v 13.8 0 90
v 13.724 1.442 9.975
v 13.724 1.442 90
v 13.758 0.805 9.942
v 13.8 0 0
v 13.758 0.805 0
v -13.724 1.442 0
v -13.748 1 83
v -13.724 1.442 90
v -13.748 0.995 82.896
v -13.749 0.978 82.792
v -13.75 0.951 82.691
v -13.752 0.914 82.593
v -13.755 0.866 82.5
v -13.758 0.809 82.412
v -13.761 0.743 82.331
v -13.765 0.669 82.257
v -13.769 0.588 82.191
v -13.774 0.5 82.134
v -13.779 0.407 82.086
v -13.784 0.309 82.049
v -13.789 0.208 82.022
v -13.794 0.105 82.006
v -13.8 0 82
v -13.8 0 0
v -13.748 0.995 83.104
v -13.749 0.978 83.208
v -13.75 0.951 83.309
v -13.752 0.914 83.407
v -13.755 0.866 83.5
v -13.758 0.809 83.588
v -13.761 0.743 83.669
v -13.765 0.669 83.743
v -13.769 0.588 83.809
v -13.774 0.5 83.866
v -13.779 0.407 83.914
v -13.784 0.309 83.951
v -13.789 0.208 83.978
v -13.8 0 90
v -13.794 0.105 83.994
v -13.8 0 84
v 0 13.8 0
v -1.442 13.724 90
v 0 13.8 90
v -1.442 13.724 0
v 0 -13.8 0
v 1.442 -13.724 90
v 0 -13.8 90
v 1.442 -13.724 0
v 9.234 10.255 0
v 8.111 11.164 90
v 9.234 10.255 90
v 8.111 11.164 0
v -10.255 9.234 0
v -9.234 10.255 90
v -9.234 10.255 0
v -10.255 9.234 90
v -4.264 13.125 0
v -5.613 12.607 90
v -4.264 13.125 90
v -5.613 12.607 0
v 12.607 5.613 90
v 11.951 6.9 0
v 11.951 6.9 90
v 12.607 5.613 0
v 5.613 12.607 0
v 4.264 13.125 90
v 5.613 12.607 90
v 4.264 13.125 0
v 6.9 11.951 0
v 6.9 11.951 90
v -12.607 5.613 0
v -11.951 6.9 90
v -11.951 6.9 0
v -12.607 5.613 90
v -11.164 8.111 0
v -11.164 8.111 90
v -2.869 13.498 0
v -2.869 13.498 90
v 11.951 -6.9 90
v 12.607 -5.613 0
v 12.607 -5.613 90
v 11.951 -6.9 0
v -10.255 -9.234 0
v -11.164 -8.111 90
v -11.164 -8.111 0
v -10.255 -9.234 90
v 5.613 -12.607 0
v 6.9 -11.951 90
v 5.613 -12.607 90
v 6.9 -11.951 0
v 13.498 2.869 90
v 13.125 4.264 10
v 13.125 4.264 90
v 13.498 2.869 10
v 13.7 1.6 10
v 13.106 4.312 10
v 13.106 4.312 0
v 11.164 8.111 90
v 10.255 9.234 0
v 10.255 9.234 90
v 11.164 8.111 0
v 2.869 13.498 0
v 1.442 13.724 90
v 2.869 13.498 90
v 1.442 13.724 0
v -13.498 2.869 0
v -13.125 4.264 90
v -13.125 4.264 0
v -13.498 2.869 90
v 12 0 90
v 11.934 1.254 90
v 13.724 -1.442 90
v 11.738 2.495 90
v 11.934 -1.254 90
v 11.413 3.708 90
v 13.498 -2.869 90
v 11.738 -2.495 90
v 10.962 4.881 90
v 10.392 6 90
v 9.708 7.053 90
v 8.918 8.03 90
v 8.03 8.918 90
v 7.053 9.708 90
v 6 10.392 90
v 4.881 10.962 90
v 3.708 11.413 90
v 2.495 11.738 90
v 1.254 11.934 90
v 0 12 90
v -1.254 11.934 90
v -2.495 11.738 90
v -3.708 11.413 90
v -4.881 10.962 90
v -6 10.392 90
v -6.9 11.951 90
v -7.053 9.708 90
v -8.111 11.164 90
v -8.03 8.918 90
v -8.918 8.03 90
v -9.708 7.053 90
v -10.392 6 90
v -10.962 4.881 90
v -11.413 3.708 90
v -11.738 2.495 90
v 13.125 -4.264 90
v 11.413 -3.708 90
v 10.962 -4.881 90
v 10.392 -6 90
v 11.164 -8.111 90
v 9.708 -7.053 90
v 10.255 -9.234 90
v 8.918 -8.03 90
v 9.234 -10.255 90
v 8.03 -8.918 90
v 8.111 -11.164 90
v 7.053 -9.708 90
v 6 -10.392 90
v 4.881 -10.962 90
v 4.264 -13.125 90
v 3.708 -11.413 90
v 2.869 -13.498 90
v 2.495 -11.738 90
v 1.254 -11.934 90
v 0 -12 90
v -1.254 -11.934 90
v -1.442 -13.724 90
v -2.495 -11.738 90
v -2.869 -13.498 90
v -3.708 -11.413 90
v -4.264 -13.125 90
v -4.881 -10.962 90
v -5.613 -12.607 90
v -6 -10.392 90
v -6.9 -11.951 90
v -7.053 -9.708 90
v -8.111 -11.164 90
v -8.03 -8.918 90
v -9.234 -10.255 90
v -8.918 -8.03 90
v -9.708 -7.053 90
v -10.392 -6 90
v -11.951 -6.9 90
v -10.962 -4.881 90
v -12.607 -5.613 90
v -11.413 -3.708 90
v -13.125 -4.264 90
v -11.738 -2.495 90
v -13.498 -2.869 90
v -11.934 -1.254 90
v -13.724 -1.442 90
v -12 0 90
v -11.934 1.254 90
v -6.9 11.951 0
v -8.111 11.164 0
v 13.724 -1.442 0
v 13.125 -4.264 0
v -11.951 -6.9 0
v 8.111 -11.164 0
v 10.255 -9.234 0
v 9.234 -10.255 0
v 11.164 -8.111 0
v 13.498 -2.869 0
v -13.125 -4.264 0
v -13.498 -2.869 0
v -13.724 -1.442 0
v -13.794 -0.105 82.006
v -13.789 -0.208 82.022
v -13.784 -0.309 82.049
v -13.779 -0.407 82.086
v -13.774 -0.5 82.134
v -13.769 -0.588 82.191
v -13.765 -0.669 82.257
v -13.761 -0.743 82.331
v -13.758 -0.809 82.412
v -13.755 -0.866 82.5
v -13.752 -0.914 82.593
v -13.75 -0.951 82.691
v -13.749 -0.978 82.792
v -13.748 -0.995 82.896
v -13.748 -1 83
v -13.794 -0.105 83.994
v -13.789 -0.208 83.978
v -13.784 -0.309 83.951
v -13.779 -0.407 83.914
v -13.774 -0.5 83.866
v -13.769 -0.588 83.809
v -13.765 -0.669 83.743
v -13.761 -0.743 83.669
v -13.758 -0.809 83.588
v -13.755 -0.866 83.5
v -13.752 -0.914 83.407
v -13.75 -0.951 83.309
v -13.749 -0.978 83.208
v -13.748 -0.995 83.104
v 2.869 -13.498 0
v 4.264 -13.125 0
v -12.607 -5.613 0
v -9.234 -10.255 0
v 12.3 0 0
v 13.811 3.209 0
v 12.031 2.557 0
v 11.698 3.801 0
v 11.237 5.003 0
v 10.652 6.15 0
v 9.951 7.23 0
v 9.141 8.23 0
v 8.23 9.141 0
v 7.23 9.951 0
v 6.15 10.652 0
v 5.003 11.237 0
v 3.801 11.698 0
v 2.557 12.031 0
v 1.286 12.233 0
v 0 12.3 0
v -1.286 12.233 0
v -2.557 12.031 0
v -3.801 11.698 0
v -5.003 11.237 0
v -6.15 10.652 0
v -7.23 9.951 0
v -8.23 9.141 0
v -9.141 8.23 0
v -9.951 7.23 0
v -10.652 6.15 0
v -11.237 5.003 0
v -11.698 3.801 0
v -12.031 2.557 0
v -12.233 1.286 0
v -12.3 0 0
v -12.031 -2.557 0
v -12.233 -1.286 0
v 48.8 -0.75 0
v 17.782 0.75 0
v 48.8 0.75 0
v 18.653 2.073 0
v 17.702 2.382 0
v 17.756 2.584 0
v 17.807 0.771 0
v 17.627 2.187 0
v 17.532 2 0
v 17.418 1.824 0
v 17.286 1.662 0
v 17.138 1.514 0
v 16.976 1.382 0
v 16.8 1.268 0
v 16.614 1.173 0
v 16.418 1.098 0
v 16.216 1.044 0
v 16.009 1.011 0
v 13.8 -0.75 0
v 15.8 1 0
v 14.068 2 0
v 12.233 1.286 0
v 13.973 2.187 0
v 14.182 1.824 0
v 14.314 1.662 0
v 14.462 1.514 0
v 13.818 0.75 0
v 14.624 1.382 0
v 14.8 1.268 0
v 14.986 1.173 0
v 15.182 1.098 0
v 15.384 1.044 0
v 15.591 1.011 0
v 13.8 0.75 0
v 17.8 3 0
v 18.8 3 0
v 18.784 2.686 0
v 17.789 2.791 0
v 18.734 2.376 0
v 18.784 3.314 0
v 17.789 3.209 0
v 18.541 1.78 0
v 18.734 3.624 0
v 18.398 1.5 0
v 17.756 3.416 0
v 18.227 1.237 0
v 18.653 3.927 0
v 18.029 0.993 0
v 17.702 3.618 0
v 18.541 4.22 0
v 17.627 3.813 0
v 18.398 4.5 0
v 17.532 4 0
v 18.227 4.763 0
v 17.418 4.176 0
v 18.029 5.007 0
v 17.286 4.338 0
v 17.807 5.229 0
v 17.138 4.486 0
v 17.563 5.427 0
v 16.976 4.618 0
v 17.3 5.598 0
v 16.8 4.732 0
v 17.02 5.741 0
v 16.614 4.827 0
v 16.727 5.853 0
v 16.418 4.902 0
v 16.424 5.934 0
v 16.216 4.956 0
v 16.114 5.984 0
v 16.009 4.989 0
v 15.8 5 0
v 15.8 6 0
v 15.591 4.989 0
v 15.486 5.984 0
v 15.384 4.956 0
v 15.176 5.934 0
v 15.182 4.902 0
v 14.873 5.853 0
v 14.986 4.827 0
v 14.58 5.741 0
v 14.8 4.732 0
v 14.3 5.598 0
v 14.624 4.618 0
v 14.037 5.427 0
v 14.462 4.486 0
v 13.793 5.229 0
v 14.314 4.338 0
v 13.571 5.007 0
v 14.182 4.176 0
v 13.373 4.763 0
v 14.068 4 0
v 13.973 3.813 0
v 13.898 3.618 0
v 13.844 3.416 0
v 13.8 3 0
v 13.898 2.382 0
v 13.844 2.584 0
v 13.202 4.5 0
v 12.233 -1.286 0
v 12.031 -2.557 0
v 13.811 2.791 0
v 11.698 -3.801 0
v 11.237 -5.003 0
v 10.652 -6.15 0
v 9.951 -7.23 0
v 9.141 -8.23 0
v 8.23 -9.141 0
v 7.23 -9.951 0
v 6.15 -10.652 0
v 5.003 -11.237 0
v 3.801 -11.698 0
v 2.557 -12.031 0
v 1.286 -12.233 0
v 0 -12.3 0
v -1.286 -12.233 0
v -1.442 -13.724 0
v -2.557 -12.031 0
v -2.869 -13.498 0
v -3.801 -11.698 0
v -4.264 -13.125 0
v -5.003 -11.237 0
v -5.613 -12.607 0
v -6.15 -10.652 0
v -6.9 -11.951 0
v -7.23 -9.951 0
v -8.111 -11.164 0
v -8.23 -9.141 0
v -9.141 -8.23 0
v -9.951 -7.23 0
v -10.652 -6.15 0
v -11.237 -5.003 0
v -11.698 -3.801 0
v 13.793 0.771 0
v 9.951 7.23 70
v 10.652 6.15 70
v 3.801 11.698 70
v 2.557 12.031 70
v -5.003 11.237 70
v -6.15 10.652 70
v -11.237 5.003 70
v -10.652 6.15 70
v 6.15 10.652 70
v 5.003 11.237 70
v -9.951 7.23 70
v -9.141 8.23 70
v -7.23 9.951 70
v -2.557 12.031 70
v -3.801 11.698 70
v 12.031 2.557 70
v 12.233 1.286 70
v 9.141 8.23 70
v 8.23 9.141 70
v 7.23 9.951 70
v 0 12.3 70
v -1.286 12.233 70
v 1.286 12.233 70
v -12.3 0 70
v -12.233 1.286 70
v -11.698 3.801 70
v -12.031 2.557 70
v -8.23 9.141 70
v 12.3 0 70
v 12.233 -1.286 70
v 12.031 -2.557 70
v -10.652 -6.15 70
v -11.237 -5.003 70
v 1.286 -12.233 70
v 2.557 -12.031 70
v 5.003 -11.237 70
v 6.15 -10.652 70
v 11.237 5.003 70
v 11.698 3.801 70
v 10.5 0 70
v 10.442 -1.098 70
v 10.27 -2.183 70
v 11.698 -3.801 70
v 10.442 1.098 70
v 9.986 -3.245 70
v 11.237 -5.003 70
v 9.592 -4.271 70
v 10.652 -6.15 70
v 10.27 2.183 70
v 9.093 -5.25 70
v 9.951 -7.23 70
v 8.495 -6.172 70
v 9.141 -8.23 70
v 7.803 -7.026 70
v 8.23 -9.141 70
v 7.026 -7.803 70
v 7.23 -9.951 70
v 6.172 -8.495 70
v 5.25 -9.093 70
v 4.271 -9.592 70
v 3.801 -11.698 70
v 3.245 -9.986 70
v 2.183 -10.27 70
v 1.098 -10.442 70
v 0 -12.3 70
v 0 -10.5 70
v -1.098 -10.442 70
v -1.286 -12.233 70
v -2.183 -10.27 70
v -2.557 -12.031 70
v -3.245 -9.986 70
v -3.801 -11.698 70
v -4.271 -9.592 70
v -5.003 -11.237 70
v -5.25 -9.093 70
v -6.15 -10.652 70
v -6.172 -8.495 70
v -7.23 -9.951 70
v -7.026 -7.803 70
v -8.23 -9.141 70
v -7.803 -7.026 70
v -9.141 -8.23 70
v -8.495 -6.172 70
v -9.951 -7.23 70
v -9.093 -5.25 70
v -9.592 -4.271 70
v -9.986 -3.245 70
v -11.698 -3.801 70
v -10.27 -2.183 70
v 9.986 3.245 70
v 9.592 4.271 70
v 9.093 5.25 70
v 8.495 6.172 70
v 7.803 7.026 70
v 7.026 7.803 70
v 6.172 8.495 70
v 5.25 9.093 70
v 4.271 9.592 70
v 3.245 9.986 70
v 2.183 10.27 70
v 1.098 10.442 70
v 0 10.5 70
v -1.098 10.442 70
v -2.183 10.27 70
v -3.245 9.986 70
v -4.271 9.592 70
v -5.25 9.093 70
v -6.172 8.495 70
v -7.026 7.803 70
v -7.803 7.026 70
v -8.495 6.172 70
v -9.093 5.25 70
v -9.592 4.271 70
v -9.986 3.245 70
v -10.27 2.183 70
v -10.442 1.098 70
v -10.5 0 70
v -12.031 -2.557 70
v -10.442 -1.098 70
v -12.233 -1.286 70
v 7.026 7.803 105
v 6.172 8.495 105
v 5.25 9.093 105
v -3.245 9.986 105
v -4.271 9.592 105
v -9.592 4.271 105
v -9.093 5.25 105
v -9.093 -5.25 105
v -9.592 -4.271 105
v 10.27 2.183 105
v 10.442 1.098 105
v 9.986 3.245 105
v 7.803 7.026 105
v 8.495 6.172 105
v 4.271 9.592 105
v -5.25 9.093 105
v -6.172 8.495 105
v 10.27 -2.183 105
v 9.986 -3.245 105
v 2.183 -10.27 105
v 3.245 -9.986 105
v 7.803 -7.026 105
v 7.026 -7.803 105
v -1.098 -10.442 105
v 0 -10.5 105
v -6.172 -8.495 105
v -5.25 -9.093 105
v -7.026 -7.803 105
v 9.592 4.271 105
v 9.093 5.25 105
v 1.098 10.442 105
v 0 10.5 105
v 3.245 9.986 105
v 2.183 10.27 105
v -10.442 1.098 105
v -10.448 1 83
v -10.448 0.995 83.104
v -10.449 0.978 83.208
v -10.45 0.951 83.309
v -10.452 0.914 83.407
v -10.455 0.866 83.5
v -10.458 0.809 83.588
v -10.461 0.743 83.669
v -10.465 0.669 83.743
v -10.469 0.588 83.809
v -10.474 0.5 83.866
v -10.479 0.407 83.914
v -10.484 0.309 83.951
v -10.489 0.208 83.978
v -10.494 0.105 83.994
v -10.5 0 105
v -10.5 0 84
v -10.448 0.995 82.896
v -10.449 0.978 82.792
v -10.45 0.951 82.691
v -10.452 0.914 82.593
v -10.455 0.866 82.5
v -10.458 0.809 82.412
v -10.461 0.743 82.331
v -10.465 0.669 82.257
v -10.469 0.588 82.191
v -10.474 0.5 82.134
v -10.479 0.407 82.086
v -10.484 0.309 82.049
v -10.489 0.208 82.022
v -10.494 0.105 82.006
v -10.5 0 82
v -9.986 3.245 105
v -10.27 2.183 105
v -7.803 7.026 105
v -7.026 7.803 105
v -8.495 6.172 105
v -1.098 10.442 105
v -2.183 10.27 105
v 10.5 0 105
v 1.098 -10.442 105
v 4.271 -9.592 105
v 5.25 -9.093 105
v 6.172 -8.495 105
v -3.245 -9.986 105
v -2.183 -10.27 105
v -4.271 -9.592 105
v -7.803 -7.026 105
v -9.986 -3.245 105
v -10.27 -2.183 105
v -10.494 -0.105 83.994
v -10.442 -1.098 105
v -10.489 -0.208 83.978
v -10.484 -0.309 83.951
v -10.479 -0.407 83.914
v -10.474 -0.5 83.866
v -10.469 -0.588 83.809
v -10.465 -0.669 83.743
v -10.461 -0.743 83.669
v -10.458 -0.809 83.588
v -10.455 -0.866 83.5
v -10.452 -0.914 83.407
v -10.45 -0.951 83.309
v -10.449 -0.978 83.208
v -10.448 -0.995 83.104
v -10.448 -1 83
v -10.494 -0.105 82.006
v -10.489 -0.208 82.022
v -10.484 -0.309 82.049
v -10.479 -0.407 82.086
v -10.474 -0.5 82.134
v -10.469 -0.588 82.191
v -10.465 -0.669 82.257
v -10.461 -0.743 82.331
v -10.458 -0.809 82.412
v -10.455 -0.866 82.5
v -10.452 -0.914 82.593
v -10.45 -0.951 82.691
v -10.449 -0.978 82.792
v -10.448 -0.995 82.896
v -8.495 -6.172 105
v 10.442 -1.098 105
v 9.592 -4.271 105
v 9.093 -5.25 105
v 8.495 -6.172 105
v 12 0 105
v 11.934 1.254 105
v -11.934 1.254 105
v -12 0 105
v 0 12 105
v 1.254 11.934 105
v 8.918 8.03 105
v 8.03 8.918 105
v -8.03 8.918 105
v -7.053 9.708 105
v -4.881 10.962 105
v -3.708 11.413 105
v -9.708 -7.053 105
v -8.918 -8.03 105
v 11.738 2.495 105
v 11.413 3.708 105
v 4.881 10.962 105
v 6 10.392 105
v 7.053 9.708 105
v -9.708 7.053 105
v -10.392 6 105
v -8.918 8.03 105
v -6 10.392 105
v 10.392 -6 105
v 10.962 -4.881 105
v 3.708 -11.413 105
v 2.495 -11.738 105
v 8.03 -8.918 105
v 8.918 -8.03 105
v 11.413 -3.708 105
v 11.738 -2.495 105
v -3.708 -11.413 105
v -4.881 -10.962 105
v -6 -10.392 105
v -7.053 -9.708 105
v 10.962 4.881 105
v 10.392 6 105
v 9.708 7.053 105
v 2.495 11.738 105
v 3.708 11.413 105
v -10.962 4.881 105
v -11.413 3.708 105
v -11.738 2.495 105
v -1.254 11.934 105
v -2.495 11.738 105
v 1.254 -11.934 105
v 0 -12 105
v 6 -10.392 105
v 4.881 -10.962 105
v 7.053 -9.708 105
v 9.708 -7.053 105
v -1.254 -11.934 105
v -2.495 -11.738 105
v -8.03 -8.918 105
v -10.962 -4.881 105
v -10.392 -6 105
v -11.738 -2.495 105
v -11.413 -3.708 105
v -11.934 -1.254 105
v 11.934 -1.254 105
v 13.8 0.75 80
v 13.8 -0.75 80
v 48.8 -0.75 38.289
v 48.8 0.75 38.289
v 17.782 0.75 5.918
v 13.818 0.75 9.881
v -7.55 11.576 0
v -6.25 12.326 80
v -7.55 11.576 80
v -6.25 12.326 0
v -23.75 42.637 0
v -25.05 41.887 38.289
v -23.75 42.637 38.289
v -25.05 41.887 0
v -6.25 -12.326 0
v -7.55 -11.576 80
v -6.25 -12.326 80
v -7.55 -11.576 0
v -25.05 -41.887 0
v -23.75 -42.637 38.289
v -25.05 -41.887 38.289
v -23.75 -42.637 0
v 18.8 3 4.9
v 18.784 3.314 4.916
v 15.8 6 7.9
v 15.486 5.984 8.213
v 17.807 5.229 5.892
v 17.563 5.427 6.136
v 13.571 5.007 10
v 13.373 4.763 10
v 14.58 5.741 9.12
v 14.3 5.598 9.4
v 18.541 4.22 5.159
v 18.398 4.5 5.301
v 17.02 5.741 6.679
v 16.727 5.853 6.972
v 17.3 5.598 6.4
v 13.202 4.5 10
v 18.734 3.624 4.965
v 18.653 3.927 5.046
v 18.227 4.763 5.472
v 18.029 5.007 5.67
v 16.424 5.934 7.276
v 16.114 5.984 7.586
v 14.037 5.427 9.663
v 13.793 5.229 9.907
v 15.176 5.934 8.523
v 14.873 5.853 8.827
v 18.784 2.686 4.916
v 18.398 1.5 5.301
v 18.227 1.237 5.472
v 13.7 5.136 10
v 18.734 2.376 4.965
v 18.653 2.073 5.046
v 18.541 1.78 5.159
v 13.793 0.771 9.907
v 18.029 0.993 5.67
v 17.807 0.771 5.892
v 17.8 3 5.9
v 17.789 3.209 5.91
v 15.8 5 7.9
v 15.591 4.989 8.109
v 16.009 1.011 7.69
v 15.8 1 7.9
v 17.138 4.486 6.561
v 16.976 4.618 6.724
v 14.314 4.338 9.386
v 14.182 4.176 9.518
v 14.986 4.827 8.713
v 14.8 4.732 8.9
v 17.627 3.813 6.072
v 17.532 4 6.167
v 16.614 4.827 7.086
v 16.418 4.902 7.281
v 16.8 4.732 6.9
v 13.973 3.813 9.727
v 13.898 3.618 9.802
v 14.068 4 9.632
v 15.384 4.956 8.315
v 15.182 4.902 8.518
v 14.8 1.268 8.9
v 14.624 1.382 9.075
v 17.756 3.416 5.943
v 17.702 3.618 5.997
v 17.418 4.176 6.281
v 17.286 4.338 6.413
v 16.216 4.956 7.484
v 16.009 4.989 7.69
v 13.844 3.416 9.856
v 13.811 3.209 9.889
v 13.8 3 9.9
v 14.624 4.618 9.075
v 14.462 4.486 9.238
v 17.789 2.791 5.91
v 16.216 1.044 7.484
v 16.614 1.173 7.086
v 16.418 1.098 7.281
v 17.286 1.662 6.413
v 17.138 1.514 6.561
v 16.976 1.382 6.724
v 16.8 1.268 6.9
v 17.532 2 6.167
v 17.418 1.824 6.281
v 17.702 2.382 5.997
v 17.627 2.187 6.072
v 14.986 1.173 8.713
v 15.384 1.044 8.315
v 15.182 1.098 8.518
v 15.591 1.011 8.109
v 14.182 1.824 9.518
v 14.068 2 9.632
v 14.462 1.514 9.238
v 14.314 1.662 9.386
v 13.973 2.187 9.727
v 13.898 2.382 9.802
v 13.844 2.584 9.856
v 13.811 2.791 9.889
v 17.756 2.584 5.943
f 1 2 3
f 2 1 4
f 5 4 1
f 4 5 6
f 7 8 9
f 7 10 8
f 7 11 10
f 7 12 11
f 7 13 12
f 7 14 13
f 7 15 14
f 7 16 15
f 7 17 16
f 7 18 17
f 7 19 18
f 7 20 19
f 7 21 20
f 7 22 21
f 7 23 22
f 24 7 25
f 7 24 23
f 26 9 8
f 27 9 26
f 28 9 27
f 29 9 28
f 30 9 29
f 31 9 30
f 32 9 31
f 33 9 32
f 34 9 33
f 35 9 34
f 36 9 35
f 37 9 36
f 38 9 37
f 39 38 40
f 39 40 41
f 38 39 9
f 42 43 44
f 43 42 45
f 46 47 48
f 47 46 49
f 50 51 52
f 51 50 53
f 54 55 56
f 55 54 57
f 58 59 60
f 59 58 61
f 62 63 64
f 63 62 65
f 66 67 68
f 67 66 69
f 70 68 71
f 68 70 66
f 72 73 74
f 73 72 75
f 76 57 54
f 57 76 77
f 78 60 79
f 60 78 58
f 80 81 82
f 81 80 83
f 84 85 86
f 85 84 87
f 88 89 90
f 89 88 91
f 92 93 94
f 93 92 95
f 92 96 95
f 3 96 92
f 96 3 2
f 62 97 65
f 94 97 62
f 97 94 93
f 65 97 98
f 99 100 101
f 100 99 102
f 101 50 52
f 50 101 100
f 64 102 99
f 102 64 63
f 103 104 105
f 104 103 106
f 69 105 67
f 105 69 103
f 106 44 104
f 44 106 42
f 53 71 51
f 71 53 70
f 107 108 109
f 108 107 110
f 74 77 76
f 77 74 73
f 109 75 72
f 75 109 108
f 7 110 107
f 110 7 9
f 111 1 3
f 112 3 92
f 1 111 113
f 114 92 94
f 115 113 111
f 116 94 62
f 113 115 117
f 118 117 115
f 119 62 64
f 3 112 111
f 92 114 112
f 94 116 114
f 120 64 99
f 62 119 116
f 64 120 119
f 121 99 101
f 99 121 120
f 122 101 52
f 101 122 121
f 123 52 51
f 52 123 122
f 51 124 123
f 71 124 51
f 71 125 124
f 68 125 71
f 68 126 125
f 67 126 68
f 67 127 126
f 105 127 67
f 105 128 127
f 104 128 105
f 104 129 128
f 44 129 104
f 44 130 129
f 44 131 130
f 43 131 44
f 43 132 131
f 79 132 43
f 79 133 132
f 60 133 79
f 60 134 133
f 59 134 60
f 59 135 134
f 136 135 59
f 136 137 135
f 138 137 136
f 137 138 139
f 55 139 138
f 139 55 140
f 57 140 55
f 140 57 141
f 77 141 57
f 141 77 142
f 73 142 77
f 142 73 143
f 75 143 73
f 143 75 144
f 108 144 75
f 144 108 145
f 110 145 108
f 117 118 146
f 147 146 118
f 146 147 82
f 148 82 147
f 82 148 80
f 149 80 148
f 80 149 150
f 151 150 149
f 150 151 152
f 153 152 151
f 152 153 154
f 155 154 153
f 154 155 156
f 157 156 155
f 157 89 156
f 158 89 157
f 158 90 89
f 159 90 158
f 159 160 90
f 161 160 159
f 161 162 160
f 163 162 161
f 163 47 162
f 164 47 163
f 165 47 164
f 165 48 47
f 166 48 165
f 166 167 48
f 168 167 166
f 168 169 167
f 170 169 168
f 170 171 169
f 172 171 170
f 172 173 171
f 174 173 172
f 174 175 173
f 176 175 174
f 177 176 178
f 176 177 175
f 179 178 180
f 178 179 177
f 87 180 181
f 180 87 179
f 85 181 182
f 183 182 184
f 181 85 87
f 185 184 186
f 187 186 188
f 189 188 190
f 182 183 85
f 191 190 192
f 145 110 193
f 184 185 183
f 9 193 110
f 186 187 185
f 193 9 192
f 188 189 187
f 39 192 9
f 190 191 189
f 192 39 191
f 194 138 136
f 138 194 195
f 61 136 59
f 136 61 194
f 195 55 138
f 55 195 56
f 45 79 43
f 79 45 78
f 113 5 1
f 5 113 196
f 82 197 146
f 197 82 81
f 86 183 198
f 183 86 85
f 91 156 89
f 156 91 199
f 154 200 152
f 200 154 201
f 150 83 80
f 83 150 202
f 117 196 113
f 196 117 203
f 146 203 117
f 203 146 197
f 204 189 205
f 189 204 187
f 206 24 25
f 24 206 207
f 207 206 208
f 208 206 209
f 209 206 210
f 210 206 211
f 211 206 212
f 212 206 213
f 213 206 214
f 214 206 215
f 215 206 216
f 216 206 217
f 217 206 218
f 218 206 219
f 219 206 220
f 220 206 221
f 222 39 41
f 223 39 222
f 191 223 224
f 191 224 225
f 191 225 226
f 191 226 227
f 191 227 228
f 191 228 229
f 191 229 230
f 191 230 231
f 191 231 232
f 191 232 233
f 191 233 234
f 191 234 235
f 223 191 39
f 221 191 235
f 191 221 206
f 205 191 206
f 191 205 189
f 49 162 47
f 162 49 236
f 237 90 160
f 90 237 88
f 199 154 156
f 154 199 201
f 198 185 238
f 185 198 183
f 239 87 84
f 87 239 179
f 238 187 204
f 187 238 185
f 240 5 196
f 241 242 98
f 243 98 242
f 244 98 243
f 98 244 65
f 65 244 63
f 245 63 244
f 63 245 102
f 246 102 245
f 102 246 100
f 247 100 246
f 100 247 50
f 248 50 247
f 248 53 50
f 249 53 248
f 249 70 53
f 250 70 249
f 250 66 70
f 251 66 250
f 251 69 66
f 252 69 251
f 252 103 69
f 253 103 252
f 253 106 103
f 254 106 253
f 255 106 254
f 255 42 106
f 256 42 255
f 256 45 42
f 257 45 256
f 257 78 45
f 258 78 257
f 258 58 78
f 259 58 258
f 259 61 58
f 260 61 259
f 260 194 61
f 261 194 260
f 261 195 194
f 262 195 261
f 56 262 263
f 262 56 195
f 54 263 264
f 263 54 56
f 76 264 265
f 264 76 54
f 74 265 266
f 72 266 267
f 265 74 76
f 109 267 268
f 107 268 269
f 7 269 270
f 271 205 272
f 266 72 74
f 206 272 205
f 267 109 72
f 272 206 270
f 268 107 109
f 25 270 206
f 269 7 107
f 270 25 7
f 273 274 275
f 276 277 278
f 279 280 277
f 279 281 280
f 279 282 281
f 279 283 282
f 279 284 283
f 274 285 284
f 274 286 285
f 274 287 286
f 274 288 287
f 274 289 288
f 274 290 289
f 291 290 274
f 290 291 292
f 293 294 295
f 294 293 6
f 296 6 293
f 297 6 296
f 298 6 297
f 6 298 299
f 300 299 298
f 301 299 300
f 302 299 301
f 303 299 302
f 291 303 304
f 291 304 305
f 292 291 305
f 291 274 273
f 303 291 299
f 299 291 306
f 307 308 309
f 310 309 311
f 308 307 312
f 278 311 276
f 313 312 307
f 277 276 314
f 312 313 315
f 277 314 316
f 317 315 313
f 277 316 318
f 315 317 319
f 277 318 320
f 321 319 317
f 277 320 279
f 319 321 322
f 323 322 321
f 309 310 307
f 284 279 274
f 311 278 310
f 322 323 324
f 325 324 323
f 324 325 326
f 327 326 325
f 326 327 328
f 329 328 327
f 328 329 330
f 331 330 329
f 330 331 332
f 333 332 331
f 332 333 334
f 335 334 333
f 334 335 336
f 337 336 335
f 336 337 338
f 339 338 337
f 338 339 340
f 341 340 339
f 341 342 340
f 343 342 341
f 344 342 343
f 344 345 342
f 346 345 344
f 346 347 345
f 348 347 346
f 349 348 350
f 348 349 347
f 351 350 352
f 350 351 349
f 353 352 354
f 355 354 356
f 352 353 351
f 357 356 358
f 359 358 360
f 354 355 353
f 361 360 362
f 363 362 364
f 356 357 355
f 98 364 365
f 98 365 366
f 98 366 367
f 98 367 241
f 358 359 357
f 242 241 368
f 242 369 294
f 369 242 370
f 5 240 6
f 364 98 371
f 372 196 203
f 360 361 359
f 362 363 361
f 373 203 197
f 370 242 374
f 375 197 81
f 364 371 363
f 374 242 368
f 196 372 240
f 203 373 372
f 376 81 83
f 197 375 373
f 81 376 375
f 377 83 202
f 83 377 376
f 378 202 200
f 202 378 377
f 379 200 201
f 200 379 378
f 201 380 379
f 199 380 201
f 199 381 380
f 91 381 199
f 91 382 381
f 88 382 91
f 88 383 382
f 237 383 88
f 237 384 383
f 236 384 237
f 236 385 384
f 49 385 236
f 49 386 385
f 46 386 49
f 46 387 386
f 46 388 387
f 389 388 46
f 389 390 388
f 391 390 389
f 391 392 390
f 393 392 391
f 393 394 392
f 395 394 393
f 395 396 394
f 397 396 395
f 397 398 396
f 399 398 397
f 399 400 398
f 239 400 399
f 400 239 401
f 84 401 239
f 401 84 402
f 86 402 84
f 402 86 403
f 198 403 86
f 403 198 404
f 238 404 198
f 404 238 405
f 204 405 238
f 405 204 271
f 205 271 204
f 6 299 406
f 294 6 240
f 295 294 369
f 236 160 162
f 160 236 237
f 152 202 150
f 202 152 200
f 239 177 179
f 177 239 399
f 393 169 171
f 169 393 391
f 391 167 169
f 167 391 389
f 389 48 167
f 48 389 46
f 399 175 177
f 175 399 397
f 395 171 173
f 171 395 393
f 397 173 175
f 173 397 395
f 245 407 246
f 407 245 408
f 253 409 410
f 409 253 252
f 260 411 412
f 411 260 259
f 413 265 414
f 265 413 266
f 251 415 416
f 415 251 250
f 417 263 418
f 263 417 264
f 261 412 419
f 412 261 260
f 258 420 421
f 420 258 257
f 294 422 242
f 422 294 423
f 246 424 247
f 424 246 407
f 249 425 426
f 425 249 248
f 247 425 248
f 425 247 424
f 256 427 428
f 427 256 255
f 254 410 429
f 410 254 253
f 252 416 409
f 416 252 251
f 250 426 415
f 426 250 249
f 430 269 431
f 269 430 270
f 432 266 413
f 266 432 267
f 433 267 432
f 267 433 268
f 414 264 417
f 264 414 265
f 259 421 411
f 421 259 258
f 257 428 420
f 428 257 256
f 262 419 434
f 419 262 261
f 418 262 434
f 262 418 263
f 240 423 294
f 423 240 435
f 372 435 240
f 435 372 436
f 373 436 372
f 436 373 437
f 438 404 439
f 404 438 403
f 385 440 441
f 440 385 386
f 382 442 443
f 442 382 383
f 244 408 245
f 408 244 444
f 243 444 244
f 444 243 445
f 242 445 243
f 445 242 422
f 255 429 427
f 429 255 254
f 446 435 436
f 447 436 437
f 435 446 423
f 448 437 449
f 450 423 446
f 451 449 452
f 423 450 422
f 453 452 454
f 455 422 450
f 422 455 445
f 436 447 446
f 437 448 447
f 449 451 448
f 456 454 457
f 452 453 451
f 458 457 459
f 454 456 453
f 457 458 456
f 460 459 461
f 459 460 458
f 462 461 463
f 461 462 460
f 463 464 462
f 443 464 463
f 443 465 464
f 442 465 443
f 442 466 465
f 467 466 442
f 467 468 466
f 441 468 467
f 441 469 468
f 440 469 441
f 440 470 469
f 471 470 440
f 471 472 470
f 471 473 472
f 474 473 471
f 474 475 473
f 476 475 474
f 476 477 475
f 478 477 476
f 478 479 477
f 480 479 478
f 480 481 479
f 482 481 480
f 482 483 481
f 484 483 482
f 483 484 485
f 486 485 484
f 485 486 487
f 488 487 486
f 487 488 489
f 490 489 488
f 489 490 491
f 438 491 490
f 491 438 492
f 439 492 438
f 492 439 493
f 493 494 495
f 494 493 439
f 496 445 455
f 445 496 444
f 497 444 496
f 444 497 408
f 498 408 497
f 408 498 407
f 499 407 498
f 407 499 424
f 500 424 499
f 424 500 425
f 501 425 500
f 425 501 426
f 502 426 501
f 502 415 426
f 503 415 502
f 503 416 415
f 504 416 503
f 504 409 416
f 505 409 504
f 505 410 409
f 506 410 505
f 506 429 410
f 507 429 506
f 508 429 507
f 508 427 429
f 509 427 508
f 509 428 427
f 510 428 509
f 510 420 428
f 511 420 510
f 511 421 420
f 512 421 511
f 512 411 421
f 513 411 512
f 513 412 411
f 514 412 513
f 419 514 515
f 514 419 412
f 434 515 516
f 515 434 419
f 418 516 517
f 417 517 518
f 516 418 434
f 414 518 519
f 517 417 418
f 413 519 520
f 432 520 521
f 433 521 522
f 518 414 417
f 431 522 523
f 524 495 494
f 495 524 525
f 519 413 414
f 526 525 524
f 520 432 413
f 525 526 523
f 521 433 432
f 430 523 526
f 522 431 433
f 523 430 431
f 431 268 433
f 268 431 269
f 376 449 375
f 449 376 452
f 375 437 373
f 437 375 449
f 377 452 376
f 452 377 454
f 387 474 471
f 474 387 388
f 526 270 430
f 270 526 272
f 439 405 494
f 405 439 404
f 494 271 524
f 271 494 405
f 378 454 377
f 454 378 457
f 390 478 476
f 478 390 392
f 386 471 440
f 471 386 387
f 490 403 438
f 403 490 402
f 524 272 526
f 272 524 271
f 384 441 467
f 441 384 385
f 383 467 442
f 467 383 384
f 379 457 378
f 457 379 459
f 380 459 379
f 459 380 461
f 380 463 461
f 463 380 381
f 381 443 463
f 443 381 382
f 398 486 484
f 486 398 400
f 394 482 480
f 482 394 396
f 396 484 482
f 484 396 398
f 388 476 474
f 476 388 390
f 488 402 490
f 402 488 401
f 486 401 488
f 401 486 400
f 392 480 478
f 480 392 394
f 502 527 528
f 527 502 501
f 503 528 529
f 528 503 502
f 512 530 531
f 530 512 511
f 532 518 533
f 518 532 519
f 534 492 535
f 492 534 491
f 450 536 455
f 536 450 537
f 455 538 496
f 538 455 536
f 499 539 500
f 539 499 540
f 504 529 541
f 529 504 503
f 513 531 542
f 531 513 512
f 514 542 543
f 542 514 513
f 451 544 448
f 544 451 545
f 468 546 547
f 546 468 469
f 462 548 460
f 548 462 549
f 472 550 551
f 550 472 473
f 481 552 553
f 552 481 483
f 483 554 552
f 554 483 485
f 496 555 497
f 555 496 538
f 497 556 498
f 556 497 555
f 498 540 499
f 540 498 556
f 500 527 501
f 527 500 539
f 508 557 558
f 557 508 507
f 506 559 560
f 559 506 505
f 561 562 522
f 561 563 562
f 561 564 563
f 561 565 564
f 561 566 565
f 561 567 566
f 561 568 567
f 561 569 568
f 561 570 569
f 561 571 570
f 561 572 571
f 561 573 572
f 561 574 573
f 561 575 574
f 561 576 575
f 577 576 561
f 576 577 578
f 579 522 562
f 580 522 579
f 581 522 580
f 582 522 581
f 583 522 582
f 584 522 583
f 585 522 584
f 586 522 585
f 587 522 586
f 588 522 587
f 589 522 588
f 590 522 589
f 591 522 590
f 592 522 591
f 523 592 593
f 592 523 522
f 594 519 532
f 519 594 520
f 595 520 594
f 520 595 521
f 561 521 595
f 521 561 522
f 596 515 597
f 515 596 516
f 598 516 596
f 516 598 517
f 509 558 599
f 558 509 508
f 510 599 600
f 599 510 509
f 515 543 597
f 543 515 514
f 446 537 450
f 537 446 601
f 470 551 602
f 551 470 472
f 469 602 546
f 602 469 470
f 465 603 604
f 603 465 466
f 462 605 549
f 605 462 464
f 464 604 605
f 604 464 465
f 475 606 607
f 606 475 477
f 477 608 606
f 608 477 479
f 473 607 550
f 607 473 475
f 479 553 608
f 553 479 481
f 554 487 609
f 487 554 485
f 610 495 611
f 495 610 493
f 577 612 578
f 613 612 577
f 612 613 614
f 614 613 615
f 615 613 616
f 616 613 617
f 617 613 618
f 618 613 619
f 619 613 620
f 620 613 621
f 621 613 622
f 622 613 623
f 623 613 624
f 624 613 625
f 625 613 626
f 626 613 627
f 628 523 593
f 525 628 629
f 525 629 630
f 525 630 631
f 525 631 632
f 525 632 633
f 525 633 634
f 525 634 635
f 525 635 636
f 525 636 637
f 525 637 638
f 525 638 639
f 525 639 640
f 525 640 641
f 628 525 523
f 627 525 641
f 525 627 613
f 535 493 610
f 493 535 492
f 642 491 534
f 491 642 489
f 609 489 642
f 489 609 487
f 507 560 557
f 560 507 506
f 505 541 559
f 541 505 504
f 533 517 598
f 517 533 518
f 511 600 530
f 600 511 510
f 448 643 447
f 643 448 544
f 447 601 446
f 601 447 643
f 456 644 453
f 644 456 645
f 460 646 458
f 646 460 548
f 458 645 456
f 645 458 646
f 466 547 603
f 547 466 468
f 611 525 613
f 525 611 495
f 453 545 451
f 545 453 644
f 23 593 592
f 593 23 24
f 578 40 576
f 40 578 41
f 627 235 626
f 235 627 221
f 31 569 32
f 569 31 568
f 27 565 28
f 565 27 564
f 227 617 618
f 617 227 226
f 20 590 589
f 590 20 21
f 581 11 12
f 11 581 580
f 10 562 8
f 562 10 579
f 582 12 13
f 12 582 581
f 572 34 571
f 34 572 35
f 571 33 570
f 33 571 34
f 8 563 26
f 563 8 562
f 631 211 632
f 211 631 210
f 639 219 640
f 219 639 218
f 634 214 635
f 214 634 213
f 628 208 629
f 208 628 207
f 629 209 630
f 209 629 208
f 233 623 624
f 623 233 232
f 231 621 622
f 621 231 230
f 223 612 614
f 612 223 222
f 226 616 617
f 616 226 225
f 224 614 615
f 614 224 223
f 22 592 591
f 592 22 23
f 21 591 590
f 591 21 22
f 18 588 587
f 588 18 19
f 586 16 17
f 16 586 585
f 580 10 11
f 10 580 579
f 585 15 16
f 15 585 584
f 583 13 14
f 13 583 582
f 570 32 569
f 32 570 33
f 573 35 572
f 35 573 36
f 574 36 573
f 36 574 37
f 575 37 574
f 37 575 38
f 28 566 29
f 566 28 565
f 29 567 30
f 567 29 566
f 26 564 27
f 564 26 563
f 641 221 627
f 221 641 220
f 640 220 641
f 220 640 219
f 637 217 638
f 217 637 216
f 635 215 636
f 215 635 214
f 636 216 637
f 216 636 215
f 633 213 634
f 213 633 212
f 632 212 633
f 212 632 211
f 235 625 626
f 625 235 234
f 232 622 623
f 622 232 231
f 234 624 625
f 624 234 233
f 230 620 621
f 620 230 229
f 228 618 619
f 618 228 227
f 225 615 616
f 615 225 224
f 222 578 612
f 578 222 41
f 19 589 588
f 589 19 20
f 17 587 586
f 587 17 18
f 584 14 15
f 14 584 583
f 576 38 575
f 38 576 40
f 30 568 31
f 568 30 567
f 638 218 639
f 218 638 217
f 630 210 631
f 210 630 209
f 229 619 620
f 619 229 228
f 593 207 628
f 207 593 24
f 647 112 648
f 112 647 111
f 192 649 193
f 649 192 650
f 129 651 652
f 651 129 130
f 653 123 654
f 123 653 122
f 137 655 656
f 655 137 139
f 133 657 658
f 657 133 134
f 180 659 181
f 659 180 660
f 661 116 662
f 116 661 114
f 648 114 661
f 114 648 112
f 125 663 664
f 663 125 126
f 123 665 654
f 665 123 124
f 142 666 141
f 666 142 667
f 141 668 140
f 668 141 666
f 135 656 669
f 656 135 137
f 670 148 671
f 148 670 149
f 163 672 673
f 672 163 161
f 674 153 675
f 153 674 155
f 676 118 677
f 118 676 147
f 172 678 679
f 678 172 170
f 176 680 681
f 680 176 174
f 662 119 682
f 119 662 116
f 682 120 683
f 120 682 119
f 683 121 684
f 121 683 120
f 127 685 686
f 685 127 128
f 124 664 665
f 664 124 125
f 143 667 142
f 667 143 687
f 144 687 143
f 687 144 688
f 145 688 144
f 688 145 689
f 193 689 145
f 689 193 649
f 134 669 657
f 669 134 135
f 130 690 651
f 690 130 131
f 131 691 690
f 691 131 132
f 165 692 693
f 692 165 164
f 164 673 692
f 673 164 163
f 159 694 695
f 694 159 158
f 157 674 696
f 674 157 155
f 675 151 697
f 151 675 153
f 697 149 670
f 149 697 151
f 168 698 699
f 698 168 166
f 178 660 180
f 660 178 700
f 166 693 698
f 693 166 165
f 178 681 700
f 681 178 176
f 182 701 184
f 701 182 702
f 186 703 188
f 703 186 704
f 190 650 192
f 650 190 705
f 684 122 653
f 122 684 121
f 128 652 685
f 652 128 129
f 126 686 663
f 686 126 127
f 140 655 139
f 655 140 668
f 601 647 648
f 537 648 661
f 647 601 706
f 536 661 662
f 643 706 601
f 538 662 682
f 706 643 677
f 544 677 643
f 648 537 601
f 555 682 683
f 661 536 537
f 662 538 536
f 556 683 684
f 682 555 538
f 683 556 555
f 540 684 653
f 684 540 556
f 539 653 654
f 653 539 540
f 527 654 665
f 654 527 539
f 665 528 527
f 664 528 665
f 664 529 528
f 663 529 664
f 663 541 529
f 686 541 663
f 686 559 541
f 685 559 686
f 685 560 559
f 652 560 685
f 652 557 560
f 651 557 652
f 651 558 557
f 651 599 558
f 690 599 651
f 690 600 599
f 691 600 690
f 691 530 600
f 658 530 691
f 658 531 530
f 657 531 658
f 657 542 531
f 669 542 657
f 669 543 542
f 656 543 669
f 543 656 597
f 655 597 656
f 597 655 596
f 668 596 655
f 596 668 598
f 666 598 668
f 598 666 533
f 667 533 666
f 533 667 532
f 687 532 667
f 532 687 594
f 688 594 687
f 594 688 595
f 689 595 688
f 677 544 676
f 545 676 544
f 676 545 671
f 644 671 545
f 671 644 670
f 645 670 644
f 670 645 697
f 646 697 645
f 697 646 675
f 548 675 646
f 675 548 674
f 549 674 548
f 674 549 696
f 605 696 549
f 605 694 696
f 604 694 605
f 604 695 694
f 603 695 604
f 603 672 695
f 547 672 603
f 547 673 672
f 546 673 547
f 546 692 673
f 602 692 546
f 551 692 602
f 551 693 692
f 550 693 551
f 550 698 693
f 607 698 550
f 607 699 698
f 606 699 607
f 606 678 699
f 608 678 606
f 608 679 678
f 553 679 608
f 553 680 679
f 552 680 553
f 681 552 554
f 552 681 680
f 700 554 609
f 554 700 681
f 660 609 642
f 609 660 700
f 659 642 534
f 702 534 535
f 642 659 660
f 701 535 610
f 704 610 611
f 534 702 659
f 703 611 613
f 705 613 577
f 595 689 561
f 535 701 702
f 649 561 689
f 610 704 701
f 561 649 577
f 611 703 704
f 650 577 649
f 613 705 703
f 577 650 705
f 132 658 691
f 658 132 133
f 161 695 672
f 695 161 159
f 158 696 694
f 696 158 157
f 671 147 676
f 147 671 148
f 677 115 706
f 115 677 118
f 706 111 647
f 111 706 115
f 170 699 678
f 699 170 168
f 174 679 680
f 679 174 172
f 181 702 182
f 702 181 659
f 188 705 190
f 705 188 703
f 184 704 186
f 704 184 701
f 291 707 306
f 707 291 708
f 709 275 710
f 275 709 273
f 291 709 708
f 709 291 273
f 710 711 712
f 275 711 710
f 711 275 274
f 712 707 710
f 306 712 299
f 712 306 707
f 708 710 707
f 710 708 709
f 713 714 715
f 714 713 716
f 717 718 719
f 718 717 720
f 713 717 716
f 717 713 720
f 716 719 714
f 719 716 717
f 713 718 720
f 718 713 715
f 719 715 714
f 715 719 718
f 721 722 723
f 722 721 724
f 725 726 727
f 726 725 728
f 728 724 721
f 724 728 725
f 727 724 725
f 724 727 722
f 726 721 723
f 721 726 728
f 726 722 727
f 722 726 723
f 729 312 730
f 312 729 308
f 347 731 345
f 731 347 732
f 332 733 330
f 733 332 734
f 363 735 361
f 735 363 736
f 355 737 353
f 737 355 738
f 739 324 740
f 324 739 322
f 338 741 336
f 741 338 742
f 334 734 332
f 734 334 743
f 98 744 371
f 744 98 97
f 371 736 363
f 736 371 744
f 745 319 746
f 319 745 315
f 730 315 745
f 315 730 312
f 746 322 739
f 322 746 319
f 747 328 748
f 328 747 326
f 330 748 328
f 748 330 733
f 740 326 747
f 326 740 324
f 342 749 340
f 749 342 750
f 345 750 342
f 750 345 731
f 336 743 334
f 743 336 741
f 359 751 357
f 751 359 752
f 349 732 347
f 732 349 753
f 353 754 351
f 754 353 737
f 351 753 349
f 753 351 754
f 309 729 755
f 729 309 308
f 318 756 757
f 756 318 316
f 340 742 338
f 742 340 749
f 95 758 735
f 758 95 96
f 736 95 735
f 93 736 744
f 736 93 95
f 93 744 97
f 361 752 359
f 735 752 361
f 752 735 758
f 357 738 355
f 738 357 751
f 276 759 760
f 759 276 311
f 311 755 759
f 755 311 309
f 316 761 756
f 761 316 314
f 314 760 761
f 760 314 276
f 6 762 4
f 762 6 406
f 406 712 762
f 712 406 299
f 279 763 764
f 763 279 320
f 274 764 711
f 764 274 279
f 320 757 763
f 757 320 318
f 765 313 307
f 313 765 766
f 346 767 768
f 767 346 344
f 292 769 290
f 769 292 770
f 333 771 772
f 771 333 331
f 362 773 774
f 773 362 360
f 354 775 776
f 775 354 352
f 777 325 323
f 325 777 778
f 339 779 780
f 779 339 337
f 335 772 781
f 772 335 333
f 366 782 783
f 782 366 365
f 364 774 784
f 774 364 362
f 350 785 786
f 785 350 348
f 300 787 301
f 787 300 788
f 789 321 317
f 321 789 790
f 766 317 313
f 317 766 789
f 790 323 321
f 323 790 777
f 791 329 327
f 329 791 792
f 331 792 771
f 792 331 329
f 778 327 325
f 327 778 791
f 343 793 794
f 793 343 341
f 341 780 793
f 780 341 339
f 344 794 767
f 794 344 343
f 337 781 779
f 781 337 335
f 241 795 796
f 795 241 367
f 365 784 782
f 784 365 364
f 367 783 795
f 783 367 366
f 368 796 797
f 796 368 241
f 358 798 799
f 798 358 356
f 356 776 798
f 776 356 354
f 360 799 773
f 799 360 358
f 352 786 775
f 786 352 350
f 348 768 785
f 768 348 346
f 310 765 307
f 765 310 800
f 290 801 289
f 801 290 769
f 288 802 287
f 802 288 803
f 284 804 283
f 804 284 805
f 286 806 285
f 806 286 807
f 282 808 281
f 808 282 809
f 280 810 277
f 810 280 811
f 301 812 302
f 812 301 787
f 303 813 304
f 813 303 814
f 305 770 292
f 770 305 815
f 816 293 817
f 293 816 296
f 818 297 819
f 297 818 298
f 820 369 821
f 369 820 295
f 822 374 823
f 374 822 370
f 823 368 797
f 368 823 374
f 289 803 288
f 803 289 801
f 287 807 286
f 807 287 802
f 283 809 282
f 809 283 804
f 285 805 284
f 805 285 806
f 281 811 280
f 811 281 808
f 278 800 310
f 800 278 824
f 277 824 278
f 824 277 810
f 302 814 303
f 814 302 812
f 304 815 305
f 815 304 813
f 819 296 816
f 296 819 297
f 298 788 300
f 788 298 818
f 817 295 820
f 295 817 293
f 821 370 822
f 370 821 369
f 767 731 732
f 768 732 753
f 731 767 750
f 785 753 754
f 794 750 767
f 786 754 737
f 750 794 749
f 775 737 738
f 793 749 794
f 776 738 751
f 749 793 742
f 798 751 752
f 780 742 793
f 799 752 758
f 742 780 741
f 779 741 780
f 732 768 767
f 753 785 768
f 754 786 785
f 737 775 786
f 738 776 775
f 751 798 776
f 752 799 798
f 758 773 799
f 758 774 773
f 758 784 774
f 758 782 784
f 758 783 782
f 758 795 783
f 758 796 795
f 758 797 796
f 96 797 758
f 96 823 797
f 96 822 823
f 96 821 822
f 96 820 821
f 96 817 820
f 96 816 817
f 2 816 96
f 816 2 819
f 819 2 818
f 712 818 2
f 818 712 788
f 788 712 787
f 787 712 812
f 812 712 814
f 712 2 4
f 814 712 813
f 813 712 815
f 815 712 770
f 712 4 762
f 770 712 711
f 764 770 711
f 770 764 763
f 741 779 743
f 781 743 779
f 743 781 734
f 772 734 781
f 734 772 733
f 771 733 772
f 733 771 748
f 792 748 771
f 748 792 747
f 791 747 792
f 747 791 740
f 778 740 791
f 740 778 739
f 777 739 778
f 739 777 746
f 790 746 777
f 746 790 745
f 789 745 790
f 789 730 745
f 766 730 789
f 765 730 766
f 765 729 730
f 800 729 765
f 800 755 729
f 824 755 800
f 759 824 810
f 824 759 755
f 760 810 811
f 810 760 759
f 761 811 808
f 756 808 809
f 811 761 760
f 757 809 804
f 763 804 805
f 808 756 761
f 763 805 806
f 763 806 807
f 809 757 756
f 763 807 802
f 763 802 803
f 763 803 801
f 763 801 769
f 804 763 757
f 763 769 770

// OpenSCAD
$fn = 60;

vyska = 90;

prumerM = 24.6;
delkaM = 70;
stena = 1.5;

delkaP = 15;
prumerP = 24;

delkaS = 35;
vyskaS = 80;
tloustkaS = 1.5;

module trup() {
    difference() {
        cylinder(r=prumerM/2+stena, h=vyska);
        cylinder(r=prumerM/2, h=delkaM);
        cylinder(r=prumerP/2-1.5, h=vyska);
        #rotate([0, 90, 0]) translate([-vyska+7, 0, -(prumerM/2)-5]) cylinder(r=1, h=10);
    }
    translate([0, 0, vyska]) difference() {
        cylinder(r=prumerP/2, h=delkaP);
        cylinder(r=prumerP/2-1.5, h=delkaP);
    }
}
module stabilizatory() {
    module stabilizator() {
        difference() {
            cube([delkaS, tloustkaS, vyskaS]);
            translate([0, 0, vyskaS]) rotate([0, 50, 0]) cube([delkaS+delkaS/2+2, tloustkaS, 30]);
        }
    }
    rotate([0, 0, 0]) translate([prumerM/2+stena, -(tloustkaS/2), 0]) stabilizator();
    rotate([0, 0, 120]) translate([prumerM/2+stena, -(tloustkaS/2), 0]) stabilizator();
    rotate([0, 0, -120]) translate([prumerM/2+stena, -(tloustkaS/2), 0]) stabilizator();
}
module voditko() {
    difference() {
        translate([2, 2, 0]) cylinder(r=3, h=10);
        translate([2, 2, 0]) cylinder(r=2, h=10);
        #rotate([0, 45, 0]) translate([-20, -2, 7]) cube([30, 8, 8]);
    }
}
trup();
stabilizatory();
translate([prumerM/2+stena, 1, 0]) voditko();
